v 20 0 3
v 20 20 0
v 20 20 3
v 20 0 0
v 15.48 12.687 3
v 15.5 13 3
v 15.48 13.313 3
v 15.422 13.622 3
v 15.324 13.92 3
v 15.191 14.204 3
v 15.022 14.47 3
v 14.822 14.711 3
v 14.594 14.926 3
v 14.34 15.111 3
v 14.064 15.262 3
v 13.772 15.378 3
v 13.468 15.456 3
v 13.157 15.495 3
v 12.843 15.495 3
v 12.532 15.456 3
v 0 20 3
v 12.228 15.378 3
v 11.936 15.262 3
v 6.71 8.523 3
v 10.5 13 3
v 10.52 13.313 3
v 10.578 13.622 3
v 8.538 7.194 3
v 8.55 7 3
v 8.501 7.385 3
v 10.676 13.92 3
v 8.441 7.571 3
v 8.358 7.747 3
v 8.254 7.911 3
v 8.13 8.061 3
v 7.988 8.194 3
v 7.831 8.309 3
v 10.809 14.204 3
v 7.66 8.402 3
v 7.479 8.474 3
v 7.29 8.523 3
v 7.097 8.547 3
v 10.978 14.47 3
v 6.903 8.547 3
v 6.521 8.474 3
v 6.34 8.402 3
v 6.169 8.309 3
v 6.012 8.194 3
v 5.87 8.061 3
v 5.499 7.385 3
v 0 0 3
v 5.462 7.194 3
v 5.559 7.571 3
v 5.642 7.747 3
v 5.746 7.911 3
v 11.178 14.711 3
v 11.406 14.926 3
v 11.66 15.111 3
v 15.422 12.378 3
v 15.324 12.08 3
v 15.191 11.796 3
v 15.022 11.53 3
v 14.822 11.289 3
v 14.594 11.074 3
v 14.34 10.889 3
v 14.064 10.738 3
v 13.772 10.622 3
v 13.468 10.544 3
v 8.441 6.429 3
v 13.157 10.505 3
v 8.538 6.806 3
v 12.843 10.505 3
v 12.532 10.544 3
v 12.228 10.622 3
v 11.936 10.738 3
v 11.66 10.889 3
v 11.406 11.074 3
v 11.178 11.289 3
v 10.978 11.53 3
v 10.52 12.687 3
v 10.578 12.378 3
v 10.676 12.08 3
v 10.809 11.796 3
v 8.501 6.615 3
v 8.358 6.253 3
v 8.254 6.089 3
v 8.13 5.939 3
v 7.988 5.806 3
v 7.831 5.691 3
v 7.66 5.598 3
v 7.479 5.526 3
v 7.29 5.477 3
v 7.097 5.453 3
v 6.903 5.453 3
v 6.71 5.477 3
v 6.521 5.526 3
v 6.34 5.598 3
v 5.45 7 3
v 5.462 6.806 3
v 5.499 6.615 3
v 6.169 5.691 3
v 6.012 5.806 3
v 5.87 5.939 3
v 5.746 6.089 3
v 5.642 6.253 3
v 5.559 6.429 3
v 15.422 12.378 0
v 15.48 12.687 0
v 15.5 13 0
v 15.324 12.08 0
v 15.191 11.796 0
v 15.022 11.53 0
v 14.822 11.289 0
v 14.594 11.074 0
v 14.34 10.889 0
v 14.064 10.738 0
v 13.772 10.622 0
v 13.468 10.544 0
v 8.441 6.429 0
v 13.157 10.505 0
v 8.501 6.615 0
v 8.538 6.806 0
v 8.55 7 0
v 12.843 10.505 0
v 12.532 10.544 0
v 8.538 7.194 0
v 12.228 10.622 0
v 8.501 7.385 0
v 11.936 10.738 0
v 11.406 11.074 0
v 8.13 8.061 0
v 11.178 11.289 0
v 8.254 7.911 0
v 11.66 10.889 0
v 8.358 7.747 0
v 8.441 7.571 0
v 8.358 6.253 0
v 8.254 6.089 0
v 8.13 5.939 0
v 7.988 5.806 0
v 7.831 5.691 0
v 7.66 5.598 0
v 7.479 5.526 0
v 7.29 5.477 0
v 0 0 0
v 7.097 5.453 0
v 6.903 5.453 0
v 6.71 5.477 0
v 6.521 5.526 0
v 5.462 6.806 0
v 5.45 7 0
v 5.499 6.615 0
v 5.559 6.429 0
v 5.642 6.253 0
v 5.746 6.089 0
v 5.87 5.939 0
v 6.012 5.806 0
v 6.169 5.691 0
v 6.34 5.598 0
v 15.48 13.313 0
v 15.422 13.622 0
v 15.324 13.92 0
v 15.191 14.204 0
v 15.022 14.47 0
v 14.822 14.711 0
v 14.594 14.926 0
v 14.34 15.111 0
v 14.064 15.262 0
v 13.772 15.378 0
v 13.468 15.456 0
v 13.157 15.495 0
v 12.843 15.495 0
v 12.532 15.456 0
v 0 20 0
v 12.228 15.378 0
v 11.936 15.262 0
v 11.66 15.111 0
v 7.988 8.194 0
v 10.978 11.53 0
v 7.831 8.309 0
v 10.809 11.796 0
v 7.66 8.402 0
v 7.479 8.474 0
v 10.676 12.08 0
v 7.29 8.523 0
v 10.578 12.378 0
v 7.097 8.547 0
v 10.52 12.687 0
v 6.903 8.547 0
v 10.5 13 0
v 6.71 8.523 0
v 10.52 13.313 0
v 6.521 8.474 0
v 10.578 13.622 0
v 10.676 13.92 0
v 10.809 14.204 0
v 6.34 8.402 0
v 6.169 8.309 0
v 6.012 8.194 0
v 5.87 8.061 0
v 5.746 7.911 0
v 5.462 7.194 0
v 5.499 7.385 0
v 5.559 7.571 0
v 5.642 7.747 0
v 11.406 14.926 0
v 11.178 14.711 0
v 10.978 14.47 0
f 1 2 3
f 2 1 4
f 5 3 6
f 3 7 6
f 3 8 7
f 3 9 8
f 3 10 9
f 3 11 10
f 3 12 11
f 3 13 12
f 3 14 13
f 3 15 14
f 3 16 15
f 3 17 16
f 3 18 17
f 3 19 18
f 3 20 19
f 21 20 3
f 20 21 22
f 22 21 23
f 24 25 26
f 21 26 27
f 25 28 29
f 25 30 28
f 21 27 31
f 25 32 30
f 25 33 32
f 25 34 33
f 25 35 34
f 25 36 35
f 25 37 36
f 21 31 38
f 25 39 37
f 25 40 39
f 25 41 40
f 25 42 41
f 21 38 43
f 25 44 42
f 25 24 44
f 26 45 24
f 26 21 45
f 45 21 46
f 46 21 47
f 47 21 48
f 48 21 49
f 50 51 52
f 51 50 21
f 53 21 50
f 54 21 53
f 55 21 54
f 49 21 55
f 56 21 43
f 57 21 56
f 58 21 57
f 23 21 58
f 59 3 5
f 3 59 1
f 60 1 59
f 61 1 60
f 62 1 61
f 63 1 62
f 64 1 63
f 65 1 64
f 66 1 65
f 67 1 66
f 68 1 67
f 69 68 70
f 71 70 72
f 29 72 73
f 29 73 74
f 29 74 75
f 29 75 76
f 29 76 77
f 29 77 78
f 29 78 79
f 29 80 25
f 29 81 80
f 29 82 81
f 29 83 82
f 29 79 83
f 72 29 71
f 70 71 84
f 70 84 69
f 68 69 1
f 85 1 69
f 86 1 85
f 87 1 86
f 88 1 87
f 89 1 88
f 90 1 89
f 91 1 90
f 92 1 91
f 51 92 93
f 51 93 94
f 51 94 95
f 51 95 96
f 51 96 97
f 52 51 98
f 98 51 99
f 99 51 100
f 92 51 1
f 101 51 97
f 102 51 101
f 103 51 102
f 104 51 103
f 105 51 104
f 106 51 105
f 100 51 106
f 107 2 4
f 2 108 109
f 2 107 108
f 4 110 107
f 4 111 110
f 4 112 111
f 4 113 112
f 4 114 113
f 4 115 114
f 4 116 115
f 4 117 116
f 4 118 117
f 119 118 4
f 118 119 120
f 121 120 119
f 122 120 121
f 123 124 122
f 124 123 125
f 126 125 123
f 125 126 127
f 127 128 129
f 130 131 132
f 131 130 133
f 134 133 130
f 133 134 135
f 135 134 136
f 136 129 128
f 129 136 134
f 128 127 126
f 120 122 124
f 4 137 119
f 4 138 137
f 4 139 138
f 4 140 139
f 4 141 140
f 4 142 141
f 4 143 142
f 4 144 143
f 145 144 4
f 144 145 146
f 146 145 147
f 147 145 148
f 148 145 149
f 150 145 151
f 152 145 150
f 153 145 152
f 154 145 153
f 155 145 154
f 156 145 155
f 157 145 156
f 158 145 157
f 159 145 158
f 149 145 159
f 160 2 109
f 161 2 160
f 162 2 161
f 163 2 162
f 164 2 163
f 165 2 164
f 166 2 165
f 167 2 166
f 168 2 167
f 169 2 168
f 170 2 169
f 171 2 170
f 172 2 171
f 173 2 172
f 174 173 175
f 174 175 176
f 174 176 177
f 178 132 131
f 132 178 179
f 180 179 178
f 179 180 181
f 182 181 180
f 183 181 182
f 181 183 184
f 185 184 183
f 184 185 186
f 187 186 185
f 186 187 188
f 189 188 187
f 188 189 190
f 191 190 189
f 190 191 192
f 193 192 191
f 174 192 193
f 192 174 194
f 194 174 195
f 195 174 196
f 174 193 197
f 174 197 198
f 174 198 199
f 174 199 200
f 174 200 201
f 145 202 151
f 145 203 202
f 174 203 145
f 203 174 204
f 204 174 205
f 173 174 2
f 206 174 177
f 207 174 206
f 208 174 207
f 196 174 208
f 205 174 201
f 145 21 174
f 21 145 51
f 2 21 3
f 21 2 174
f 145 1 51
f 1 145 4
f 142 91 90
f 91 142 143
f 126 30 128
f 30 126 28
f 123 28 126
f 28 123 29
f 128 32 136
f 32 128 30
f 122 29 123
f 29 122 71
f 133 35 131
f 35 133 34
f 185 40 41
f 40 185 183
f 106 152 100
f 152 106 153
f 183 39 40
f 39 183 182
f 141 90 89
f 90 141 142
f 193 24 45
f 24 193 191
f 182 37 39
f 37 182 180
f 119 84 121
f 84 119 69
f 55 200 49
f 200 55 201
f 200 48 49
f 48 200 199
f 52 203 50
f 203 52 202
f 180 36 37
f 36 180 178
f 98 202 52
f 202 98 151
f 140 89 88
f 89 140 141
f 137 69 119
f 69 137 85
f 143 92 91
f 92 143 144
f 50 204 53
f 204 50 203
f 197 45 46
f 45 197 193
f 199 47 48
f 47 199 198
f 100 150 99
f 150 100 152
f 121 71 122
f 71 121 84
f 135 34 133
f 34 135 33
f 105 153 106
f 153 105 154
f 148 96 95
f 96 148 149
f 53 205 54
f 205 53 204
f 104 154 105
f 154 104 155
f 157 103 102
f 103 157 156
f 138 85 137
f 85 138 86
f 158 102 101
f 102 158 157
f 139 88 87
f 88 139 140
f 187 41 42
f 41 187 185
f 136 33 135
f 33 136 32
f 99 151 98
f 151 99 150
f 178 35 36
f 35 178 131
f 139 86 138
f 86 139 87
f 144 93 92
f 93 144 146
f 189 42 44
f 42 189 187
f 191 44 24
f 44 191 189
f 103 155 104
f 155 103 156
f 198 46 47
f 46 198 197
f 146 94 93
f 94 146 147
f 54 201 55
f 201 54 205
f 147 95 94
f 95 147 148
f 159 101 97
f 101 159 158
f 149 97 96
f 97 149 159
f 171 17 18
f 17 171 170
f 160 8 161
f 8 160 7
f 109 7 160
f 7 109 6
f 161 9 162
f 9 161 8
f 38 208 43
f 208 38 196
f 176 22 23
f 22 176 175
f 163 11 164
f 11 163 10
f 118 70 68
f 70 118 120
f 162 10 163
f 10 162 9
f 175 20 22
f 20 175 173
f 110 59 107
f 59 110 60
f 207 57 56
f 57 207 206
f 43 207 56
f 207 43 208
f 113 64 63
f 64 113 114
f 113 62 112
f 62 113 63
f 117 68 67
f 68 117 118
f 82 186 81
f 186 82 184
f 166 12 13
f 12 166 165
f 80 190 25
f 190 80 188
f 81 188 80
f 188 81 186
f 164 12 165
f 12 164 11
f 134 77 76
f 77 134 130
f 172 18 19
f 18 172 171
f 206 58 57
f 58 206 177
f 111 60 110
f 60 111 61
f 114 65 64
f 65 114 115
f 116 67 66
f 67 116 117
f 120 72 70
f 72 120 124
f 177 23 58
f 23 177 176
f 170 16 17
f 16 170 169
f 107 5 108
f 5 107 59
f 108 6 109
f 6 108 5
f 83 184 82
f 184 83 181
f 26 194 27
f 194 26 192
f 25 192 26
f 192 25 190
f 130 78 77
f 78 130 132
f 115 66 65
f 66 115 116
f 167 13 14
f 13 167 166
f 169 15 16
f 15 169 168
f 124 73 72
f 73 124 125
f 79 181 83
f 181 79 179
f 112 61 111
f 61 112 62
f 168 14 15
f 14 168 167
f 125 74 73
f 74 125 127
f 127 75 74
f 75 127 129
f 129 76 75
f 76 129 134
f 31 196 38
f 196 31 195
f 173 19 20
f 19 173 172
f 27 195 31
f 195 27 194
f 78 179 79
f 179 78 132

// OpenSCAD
$fn=50;
//ZZ=1.5;
ZZ=3;
difference() {
  cube([20,20,ZZ]);
  translate([7,7,0]) cylinder(ZZ,d=3.1);
  translate([13,13,0]) cylinder(ZZ,d=5);
}
